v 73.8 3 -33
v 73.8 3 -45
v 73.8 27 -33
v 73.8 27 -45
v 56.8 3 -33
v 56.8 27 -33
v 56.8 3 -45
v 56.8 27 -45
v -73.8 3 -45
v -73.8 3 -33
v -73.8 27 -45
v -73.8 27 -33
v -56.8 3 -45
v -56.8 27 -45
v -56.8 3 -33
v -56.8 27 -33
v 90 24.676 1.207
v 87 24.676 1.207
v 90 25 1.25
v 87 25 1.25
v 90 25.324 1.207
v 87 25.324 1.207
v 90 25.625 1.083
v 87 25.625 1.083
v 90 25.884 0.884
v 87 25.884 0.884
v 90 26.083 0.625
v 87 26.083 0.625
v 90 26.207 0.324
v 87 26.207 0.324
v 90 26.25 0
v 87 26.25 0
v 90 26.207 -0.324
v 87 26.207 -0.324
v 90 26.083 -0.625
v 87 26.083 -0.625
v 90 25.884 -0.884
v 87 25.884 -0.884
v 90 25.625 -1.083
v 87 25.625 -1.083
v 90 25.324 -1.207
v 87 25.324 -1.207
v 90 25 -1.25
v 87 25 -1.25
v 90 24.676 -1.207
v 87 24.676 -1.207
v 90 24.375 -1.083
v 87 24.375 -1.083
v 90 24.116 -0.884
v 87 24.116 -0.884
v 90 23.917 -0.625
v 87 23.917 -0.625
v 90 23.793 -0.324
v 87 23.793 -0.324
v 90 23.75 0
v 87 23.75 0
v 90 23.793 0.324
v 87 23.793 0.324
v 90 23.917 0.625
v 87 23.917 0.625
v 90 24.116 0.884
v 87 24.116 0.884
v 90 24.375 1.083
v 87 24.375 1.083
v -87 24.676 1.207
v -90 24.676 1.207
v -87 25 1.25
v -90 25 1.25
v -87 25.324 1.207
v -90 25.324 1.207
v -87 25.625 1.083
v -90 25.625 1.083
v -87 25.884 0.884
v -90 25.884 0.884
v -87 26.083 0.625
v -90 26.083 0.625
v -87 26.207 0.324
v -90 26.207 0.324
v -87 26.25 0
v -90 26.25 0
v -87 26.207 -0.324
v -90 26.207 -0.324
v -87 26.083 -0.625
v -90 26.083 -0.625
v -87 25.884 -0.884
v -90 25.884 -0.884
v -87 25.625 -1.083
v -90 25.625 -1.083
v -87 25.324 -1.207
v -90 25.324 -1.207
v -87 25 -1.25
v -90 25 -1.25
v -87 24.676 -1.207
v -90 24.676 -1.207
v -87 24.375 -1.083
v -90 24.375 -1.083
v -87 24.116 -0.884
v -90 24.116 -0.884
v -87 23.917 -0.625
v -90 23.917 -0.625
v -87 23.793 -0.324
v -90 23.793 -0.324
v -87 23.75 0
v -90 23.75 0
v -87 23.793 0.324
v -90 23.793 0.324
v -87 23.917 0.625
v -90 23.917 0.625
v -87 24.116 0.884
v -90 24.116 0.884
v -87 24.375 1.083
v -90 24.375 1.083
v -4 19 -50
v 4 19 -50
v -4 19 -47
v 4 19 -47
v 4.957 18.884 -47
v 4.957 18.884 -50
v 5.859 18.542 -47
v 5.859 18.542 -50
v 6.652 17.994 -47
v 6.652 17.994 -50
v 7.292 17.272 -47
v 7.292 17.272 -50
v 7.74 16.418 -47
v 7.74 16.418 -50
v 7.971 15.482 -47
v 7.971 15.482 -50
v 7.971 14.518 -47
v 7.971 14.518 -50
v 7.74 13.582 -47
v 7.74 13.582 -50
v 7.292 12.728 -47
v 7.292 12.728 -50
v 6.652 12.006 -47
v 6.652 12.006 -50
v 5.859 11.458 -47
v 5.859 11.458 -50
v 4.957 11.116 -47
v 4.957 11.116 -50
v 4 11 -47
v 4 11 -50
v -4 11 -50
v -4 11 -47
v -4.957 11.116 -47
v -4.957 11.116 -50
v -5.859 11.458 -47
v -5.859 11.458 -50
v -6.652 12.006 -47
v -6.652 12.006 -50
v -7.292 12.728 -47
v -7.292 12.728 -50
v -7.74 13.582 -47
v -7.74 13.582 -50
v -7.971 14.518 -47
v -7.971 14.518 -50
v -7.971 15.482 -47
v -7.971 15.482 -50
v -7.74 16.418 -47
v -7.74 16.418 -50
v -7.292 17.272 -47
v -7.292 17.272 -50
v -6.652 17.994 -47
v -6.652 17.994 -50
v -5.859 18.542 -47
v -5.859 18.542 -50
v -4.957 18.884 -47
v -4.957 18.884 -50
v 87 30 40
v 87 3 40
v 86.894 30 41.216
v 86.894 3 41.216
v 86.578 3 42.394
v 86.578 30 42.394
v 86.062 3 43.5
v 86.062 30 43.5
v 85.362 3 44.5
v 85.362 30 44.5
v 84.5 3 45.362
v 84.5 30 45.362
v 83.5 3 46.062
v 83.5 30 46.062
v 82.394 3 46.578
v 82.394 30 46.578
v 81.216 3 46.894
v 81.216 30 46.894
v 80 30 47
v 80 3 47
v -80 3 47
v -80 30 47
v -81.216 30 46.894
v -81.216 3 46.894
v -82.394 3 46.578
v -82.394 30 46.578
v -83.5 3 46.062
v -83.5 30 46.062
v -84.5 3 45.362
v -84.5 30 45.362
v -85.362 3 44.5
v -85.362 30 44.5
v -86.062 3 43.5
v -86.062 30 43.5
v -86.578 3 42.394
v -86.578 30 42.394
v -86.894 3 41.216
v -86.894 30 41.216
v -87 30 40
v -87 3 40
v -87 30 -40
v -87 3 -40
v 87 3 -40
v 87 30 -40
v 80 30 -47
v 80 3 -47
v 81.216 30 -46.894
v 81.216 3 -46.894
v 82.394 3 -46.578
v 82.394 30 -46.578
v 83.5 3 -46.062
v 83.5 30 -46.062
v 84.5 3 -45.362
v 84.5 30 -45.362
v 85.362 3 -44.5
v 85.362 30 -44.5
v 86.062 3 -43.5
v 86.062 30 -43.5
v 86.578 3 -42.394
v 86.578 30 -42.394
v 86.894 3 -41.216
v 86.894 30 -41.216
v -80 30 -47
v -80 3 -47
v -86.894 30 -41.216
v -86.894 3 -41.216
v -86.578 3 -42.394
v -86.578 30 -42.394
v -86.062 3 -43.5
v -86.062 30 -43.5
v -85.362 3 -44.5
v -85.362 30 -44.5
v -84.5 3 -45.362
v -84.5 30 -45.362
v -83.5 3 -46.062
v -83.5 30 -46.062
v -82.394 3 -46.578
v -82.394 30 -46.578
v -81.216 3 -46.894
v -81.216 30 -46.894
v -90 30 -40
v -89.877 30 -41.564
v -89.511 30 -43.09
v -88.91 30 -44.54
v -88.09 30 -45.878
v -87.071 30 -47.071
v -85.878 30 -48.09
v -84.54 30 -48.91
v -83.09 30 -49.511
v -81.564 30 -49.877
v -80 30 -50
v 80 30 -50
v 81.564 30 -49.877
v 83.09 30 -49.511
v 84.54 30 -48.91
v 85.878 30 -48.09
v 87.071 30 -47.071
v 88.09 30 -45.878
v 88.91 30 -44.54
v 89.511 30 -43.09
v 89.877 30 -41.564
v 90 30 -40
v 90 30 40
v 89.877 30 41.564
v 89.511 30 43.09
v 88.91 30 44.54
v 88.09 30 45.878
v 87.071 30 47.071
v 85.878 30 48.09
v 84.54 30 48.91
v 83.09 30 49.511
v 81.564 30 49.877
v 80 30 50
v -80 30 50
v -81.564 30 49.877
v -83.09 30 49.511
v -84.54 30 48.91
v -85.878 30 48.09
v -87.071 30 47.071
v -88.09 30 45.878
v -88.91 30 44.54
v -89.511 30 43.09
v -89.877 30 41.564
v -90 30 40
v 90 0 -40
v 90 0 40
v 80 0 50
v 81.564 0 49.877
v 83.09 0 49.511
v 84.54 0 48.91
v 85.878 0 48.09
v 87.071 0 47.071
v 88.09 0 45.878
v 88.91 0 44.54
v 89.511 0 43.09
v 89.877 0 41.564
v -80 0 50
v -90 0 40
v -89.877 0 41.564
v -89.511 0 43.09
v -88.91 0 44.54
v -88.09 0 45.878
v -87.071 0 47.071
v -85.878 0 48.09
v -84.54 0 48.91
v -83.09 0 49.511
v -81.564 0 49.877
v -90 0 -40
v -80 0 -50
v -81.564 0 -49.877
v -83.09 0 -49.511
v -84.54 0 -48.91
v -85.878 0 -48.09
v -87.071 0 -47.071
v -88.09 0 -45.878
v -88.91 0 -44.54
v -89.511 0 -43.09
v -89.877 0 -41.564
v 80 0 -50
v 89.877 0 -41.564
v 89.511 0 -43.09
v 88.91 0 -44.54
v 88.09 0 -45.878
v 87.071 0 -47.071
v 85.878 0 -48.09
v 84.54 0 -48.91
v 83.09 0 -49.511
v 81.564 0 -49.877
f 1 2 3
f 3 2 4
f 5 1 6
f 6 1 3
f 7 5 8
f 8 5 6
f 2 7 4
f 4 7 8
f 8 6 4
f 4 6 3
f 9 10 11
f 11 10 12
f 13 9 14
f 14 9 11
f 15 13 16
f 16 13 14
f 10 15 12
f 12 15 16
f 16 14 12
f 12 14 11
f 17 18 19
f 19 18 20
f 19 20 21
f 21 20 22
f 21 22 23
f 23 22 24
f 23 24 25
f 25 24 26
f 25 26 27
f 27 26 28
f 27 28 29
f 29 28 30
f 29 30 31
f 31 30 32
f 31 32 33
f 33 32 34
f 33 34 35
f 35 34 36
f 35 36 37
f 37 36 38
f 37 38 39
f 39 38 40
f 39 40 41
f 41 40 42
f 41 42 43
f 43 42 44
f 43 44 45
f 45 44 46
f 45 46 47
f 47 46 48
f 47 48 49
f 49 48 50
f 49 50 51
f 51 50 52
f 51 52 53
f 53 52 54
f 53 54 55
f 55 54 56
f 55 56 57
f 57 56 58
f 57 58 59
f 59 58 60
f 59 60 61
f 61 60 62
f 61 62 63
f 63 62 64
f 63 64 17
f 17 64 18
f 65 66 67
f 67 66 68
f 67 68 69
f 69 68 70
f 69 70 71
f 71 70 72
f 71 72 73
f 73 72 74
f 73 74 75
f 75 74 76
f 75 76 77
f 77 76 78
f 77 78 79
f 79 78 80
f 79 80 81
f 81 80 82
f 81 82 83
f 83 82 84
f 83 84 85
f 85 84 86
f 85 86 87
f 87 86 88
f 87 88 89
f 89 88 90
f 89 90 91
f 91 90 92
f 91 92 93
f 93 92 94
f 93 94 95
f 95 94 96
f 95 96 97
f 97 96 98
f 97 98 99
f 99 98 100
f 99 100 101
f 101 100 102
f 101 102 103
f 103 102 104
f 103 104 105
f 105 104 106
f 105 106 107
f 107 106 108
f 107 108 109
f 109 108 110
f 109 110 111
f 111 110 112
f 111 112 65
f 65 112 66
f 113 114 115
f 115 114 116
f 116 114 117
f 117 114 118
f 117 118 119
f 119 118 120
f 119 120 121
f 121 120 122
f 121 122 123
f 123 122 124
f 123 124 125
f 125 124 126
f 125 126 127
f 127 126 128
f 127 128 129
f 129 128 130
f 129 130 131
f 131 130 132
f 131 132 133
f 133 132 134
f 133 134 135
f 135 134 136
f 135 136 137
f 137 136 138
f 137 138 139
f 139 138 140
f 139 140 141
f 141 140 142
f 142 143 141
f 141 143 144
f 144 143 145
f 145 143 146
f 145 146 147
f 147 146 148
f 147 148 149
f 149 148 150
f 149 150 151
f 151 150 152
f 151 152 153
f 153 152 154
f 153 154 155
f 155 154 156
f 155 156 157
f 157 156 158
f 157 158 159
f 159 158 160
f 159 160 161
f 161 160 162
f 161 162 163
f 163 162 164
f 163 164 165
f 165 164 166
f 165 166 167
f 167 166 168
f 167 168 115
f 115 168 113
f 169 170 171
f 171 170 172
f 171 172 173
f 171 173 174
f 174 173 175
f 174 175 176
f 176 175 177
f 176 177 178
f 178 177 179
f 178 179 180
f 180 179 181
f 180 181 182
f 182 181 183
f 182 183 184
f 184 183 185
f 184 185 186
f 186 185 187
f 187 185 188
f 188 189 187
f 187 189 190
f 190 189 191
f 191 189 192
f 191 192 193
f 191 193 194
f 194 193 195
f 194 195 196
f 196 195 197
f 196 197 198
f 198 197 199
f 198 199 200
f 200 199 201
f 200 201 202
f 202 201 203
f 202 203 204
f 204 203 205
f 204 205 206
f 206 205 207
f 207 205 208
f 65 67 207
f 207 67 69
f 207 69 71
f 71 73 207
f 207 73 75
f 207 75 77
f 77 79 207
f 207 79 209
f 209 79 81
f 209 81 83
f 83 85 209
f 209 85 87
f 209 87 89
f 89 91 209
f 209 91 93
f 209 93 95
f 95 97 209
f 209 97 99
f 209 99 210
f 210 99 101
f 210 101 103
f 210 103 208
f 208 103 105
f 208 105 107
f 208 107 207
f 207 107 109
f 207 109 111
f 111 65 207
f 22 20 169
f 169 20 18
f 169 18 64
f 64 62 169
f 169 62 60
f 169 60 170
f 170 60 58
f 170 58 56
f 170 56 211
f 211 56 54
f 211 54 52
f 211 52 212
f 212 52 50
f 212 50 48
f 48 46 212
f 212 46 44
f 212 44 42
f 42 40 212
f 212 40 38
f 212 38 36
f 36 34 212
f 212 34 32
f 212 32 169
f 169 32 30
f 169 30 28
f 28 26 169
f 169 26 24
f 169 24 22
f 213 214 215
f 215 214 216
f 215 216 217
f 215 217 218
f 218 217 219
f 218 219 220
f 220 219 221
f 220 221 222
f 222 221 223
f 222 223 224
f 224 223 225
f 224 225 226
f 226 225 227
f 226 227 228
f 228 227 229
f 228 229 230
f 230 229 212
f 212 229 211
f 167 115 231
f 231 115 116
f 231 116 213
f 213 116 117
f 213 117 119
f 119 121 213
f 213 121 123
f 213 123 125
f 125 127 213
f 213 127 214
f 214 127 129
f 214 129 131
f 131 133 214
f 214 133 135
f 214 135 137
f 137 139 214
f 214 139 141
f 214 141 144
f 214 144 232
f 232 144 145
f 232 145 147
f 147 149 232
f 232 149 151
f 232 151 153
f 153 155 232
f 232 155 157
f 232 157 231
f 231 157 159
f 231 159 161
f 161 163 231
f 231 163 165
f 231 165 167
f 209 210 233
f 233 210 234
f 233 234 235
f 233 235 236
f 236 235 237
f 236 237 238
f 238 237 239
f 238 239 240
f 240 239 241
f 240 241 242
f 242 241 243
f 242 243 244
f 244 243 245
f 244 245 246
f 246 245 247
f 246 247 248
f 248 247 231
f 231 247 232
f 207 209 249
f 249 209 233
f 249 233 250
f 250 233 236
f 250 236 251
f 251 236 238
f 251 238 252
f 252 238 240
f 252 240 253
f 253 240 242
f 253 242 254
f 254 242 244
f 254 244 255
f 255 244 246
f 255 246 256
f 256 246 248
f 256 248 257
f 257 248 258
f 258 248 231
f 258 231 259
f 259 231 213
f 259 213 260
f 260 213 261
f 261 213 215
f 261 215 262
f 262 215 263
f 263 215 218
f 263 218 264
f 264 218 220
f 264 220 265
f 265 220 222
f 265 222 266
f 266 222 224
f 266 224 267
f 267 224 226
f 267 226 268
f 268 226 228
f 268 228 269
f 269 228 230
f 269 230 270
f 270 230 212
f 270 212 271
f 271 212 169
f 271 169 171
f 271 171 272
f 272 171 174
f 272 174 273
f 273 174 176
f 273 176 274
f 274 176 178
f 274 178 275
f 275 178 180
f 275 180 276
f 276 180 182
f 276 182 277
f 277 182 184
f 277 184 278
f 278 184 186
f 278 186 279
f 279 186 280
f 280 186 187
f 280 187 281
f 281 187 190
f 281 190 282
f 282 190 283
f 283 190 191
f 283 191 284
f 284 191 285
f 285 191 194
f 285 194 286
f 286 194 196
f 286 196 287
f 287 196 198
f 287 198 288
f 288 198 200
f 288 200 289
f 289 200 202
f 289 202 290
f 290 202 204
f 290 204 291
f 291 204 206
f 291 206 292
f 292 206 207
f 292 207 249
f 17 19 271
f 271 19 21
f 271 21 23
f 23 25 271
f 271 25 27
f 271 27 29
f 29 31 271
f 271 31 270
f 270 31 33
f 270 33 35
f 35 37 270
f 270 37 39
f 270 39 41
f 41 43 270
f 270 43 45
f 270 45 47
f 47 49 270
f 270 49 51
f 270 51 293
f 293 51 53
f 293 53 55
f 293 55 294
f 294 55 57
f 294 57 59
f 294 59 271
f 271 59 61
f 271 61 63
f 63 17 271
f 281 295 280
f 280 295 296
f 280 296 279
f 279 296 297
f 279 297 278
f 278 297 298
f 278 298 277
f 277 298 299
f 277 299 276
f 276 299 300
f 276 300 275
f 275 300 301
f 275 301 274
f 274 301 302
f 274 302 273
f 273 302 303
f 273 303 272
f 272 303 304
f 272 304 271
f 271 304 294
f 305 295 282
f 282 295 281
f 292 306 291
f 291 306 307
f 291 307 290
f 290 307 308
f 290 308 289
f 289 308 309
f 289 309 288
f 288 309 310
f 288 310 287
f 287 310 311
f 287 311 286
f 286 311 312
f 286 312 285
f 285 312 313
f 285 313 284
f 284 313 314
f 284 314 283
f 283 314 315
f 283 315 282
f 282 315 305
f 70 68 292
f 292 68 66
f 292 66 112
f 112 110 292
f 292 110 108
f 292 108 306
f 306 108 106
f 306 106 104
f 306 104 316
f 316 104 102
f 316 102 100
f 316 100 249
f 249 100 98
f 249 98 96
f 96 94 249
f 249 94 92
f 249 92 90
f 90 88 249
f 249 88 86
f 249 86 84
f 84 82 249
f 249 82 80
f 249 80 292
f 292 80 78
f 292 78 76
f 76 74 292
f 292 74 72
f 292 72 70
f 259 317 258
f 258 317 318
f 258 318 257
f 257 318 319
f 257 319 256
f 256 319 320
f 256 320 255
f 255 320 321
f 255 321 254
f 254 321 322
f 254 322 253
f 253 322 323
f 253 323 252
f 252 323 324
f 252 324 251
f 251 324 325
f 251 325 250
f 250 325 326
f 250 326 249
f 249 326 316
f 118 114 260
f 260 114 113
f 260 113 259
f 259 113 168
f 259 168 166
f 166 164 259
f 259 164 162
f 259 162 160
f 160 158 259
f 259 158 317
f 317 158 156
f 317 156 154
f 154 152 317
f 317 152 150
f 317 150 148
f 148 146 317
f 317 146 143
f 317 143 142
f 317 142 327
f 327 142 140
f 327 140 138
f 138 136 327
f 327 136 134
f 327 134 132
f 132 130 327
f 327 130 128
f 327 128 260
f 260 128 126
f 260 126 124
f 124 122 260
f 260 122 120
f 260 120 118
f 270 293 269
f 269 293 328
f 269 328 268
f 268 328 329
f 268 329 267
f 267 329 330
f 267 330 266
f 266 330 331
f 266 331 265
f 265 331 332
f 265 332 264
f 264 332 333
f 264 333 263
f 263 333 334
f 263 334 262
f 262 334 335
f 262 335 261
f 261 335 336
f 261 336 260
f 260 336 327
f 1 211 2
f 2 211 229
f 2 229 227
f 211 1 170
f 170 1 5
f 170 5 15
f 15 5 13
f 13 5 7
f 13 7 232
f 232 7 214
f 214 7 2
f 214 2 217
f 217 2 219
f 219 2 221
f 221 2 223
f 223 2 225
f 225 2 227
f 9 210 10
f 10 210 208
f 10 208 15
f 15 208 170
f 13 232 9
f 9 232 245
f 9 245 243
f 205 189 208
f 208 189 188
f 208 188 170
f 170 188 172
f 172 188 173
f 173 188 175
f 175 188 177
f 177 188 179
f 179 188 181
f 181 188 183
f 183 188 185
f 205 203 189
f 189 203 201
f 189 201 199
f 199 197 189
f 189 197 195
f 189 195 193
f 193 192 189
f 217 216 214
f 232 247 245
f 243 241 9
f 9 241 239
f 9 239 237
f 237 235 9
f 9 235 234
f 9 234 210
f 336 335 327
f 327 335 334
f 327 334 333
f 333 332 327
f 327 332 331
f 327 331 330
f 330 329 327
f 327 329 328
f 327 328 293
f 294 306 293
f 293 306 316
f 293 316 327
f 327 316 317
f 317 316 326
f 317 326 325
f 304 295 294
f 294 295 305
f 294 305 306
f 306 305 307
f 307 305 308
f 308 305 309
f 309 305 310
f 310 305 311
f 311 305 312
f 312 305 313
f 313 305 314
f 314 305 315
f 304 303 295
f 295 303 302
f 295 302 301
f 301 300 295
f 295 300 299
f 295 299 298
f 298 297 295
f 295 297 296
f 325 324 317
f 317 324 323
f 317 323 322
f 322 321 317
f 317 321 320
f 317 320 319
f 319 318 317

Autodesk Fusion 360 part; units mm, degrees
sketch "Walls" plane through (0, 0, 0) normal (0, 1, 0) x (1, 0, 0)
  line L0 (-80, 50) -> (80, 50)
  line L1 (90, 40) -> (90, -40)
  line L2 (80, -50) -> (-80, -50)
  line L3 (-90, -40) -> (-90, 40)
  line L4 (-90, 50) -> (90, -50) construction
  line L5 (90, 50) -> (-90, -50) construction
  arc A0 (-90, -40) -> (-80, -50) centre (-80, -40) ccw
  arc A1 (80, -50) -> (90, -40) centre (80, -40) ccw
  arc A2 (90, 40) -> (80, 50) centre (80, 40) ccw
  arc A3 (-80, 50) -> (-90, 40) centre (-80, 40) ccw
  arc A4 (87, 40) -> (80, 47) centre (80, 40) ccw
  line L6 (-80, 47) -> (80, 47)
  arc A5 (-80, 47) -> (-87, 40) centre (-80, 40) ccw
  line L7 (-87, -40) -> (-87, 40)
  arc A6 (-87, -40) -> (-80, -47) centre (-80, -40) ccw
  line L8 (80, -47) -> (-80, -47)
  arc A7 (80, -47) -> (87, -40) centre (80, -40) ccw
  line L9 (87, 40) -> (87, -40)
  dimension "d1" = 180
  dimension "d2" = 100
  dimension "d3" = 10
  dimension "d4" = 3
extrude "Floor Extrusion" add sketch "Walls" along normal blind 3 contours L0 L1 L2 L3 A0 A1 A2 A3 | A4 L6 A5 L7 A6 L8 A7 L9
extrude "Walls Extrusion" add sketch "Walls" along normal blind 30
sketch "Port" plane through (0, 0, -50) normal (0, 0, -1) x (-1, 0, 0)
  line L0 (-80, 0) -> (80, 0)
  line L1 (80, 0) -> (80, 30)
  line L2 (80, 30) -> (-80, 30)
  line L3 (-80, 30) -> (-80, 0)
  line L4 (4, 19) -> (-4, 19)
  arc A0 (-4, 19) -> (-4, 11) centre (-4, 15) ccw
  line L5 (-4, 11) -> (4, 11)
  arc A1 (4, 11) -> (4, 19) centre (4, 15) ccw
  line L6 (4, 15) -> (-4, 15) construction
  line L7 (80, 0) -> (-80, 0)
  dimension "d11" = 8
  dimension "d12" = 8
  dimension "d25" = 4
  dimension "d42" = 15
extrude "Port Extrusion" cut sketch "Port" against normal blind 3 contours L4 A0 L5 A1
sketch "Tab Holes" plane through (0, 0, 0) normal (1, 0, 0) x (0, 0, -1)
  circle A0 centre (0, 25) radius 1.25
  line L0 (-40, 30) -> (40, 30)
  dimension "d26" = 2.5
  dimension "d27" = 5
extrude "Tab Holes Extrusion" cut sketch "Tab Holes" along normal through all and the other way through all
sketch "Encoder Blocks" plane through (0, 3, 0) normal (0, 1, 0) x (-1, 0, 0)
  line L0 (87, -40) -> (87, 40)
  arc A0 (87, 40) -> (80, 47) centre (80, 40) ccw
  line L1 (80, 47) -> (-80, 47)
  arc A1 (-80, 47) -> (-87, 40) centre (-80, 40) ccw
  line L2 (-87, 40) -> (-87, -40)
  arc A2 (-87, -40) -> (-80, -47) centre (-80, -40) ccw
  line L3 (-80, -47) -> (80, -47)
  arc A3 (80, -47) -> (87, -40) centre (80, -40) ccw
  line L4 (73.8, -45) -> (56.8, -45)
  line L5 (56.8, -45) -> (56.8, -33)
  line L6 (56.8, -33) -> (73.8, -33)
  line L7 (73.8, -33) -> (73.8, -45)
  line L8 (73.8, -45) -> (56.8, -33) construction
  line L9 (56.8, -45) -> (73.8, -33) construction
  line L10 (80, -50) -> (-80, -50)
  line L11 (90, 40) -> (90, -40)
  line L12 (-56.8, -45) -> (-73.8, -33) construction
  line L13 (-56.8, -33) -> (-56.8, -45)
  line L14 (-56.8, -45) -> (-73.8, -45)
  line L15 (-73.8, -45) -> (-56.8, -33) construction
  line L16 (-73.8, -33) -> (-56.8, -33)
  line L17 (-73.8, -45) -> (-73.8, -33)
  line L18 (80, -47) -> (-80, -47)
  line L19 (-90, -40) -> (-90, 40)
  point P0 (65.3, -39)
  point P1 (-65.3, -39)
  dimension "d29" = 17
  dimension "d30" = 12
  dimension "d31" = 5
  dimension "d32" = 16.2
  dimension "d35" = 17
  dimension "d36" = 12
  dimension "d38" = 5
  dimension "d39" = 16.2
extrude "Left Encoder Block Extrusion" add sketch "Encoder Blocks" along normal blind 24 contours L4 L5 L6 L7
extrude "Right Encoder Block Extrusion" add sketch "Encoder Blocks" along normal blind 24 contours L13 L14 L16 L17
equation "d25 = ( 8 / 2 ) * 1 mm"
equation "d27 = ( 10 / 2 ) * 1 mm"
equation "d33 = 30 mm - 3 mm - 3 mm"
equation "d40 = 30 mm - 3 mm - 3 mm"
equation "d42 = ( 30 / 2 ) * 1 mm"
